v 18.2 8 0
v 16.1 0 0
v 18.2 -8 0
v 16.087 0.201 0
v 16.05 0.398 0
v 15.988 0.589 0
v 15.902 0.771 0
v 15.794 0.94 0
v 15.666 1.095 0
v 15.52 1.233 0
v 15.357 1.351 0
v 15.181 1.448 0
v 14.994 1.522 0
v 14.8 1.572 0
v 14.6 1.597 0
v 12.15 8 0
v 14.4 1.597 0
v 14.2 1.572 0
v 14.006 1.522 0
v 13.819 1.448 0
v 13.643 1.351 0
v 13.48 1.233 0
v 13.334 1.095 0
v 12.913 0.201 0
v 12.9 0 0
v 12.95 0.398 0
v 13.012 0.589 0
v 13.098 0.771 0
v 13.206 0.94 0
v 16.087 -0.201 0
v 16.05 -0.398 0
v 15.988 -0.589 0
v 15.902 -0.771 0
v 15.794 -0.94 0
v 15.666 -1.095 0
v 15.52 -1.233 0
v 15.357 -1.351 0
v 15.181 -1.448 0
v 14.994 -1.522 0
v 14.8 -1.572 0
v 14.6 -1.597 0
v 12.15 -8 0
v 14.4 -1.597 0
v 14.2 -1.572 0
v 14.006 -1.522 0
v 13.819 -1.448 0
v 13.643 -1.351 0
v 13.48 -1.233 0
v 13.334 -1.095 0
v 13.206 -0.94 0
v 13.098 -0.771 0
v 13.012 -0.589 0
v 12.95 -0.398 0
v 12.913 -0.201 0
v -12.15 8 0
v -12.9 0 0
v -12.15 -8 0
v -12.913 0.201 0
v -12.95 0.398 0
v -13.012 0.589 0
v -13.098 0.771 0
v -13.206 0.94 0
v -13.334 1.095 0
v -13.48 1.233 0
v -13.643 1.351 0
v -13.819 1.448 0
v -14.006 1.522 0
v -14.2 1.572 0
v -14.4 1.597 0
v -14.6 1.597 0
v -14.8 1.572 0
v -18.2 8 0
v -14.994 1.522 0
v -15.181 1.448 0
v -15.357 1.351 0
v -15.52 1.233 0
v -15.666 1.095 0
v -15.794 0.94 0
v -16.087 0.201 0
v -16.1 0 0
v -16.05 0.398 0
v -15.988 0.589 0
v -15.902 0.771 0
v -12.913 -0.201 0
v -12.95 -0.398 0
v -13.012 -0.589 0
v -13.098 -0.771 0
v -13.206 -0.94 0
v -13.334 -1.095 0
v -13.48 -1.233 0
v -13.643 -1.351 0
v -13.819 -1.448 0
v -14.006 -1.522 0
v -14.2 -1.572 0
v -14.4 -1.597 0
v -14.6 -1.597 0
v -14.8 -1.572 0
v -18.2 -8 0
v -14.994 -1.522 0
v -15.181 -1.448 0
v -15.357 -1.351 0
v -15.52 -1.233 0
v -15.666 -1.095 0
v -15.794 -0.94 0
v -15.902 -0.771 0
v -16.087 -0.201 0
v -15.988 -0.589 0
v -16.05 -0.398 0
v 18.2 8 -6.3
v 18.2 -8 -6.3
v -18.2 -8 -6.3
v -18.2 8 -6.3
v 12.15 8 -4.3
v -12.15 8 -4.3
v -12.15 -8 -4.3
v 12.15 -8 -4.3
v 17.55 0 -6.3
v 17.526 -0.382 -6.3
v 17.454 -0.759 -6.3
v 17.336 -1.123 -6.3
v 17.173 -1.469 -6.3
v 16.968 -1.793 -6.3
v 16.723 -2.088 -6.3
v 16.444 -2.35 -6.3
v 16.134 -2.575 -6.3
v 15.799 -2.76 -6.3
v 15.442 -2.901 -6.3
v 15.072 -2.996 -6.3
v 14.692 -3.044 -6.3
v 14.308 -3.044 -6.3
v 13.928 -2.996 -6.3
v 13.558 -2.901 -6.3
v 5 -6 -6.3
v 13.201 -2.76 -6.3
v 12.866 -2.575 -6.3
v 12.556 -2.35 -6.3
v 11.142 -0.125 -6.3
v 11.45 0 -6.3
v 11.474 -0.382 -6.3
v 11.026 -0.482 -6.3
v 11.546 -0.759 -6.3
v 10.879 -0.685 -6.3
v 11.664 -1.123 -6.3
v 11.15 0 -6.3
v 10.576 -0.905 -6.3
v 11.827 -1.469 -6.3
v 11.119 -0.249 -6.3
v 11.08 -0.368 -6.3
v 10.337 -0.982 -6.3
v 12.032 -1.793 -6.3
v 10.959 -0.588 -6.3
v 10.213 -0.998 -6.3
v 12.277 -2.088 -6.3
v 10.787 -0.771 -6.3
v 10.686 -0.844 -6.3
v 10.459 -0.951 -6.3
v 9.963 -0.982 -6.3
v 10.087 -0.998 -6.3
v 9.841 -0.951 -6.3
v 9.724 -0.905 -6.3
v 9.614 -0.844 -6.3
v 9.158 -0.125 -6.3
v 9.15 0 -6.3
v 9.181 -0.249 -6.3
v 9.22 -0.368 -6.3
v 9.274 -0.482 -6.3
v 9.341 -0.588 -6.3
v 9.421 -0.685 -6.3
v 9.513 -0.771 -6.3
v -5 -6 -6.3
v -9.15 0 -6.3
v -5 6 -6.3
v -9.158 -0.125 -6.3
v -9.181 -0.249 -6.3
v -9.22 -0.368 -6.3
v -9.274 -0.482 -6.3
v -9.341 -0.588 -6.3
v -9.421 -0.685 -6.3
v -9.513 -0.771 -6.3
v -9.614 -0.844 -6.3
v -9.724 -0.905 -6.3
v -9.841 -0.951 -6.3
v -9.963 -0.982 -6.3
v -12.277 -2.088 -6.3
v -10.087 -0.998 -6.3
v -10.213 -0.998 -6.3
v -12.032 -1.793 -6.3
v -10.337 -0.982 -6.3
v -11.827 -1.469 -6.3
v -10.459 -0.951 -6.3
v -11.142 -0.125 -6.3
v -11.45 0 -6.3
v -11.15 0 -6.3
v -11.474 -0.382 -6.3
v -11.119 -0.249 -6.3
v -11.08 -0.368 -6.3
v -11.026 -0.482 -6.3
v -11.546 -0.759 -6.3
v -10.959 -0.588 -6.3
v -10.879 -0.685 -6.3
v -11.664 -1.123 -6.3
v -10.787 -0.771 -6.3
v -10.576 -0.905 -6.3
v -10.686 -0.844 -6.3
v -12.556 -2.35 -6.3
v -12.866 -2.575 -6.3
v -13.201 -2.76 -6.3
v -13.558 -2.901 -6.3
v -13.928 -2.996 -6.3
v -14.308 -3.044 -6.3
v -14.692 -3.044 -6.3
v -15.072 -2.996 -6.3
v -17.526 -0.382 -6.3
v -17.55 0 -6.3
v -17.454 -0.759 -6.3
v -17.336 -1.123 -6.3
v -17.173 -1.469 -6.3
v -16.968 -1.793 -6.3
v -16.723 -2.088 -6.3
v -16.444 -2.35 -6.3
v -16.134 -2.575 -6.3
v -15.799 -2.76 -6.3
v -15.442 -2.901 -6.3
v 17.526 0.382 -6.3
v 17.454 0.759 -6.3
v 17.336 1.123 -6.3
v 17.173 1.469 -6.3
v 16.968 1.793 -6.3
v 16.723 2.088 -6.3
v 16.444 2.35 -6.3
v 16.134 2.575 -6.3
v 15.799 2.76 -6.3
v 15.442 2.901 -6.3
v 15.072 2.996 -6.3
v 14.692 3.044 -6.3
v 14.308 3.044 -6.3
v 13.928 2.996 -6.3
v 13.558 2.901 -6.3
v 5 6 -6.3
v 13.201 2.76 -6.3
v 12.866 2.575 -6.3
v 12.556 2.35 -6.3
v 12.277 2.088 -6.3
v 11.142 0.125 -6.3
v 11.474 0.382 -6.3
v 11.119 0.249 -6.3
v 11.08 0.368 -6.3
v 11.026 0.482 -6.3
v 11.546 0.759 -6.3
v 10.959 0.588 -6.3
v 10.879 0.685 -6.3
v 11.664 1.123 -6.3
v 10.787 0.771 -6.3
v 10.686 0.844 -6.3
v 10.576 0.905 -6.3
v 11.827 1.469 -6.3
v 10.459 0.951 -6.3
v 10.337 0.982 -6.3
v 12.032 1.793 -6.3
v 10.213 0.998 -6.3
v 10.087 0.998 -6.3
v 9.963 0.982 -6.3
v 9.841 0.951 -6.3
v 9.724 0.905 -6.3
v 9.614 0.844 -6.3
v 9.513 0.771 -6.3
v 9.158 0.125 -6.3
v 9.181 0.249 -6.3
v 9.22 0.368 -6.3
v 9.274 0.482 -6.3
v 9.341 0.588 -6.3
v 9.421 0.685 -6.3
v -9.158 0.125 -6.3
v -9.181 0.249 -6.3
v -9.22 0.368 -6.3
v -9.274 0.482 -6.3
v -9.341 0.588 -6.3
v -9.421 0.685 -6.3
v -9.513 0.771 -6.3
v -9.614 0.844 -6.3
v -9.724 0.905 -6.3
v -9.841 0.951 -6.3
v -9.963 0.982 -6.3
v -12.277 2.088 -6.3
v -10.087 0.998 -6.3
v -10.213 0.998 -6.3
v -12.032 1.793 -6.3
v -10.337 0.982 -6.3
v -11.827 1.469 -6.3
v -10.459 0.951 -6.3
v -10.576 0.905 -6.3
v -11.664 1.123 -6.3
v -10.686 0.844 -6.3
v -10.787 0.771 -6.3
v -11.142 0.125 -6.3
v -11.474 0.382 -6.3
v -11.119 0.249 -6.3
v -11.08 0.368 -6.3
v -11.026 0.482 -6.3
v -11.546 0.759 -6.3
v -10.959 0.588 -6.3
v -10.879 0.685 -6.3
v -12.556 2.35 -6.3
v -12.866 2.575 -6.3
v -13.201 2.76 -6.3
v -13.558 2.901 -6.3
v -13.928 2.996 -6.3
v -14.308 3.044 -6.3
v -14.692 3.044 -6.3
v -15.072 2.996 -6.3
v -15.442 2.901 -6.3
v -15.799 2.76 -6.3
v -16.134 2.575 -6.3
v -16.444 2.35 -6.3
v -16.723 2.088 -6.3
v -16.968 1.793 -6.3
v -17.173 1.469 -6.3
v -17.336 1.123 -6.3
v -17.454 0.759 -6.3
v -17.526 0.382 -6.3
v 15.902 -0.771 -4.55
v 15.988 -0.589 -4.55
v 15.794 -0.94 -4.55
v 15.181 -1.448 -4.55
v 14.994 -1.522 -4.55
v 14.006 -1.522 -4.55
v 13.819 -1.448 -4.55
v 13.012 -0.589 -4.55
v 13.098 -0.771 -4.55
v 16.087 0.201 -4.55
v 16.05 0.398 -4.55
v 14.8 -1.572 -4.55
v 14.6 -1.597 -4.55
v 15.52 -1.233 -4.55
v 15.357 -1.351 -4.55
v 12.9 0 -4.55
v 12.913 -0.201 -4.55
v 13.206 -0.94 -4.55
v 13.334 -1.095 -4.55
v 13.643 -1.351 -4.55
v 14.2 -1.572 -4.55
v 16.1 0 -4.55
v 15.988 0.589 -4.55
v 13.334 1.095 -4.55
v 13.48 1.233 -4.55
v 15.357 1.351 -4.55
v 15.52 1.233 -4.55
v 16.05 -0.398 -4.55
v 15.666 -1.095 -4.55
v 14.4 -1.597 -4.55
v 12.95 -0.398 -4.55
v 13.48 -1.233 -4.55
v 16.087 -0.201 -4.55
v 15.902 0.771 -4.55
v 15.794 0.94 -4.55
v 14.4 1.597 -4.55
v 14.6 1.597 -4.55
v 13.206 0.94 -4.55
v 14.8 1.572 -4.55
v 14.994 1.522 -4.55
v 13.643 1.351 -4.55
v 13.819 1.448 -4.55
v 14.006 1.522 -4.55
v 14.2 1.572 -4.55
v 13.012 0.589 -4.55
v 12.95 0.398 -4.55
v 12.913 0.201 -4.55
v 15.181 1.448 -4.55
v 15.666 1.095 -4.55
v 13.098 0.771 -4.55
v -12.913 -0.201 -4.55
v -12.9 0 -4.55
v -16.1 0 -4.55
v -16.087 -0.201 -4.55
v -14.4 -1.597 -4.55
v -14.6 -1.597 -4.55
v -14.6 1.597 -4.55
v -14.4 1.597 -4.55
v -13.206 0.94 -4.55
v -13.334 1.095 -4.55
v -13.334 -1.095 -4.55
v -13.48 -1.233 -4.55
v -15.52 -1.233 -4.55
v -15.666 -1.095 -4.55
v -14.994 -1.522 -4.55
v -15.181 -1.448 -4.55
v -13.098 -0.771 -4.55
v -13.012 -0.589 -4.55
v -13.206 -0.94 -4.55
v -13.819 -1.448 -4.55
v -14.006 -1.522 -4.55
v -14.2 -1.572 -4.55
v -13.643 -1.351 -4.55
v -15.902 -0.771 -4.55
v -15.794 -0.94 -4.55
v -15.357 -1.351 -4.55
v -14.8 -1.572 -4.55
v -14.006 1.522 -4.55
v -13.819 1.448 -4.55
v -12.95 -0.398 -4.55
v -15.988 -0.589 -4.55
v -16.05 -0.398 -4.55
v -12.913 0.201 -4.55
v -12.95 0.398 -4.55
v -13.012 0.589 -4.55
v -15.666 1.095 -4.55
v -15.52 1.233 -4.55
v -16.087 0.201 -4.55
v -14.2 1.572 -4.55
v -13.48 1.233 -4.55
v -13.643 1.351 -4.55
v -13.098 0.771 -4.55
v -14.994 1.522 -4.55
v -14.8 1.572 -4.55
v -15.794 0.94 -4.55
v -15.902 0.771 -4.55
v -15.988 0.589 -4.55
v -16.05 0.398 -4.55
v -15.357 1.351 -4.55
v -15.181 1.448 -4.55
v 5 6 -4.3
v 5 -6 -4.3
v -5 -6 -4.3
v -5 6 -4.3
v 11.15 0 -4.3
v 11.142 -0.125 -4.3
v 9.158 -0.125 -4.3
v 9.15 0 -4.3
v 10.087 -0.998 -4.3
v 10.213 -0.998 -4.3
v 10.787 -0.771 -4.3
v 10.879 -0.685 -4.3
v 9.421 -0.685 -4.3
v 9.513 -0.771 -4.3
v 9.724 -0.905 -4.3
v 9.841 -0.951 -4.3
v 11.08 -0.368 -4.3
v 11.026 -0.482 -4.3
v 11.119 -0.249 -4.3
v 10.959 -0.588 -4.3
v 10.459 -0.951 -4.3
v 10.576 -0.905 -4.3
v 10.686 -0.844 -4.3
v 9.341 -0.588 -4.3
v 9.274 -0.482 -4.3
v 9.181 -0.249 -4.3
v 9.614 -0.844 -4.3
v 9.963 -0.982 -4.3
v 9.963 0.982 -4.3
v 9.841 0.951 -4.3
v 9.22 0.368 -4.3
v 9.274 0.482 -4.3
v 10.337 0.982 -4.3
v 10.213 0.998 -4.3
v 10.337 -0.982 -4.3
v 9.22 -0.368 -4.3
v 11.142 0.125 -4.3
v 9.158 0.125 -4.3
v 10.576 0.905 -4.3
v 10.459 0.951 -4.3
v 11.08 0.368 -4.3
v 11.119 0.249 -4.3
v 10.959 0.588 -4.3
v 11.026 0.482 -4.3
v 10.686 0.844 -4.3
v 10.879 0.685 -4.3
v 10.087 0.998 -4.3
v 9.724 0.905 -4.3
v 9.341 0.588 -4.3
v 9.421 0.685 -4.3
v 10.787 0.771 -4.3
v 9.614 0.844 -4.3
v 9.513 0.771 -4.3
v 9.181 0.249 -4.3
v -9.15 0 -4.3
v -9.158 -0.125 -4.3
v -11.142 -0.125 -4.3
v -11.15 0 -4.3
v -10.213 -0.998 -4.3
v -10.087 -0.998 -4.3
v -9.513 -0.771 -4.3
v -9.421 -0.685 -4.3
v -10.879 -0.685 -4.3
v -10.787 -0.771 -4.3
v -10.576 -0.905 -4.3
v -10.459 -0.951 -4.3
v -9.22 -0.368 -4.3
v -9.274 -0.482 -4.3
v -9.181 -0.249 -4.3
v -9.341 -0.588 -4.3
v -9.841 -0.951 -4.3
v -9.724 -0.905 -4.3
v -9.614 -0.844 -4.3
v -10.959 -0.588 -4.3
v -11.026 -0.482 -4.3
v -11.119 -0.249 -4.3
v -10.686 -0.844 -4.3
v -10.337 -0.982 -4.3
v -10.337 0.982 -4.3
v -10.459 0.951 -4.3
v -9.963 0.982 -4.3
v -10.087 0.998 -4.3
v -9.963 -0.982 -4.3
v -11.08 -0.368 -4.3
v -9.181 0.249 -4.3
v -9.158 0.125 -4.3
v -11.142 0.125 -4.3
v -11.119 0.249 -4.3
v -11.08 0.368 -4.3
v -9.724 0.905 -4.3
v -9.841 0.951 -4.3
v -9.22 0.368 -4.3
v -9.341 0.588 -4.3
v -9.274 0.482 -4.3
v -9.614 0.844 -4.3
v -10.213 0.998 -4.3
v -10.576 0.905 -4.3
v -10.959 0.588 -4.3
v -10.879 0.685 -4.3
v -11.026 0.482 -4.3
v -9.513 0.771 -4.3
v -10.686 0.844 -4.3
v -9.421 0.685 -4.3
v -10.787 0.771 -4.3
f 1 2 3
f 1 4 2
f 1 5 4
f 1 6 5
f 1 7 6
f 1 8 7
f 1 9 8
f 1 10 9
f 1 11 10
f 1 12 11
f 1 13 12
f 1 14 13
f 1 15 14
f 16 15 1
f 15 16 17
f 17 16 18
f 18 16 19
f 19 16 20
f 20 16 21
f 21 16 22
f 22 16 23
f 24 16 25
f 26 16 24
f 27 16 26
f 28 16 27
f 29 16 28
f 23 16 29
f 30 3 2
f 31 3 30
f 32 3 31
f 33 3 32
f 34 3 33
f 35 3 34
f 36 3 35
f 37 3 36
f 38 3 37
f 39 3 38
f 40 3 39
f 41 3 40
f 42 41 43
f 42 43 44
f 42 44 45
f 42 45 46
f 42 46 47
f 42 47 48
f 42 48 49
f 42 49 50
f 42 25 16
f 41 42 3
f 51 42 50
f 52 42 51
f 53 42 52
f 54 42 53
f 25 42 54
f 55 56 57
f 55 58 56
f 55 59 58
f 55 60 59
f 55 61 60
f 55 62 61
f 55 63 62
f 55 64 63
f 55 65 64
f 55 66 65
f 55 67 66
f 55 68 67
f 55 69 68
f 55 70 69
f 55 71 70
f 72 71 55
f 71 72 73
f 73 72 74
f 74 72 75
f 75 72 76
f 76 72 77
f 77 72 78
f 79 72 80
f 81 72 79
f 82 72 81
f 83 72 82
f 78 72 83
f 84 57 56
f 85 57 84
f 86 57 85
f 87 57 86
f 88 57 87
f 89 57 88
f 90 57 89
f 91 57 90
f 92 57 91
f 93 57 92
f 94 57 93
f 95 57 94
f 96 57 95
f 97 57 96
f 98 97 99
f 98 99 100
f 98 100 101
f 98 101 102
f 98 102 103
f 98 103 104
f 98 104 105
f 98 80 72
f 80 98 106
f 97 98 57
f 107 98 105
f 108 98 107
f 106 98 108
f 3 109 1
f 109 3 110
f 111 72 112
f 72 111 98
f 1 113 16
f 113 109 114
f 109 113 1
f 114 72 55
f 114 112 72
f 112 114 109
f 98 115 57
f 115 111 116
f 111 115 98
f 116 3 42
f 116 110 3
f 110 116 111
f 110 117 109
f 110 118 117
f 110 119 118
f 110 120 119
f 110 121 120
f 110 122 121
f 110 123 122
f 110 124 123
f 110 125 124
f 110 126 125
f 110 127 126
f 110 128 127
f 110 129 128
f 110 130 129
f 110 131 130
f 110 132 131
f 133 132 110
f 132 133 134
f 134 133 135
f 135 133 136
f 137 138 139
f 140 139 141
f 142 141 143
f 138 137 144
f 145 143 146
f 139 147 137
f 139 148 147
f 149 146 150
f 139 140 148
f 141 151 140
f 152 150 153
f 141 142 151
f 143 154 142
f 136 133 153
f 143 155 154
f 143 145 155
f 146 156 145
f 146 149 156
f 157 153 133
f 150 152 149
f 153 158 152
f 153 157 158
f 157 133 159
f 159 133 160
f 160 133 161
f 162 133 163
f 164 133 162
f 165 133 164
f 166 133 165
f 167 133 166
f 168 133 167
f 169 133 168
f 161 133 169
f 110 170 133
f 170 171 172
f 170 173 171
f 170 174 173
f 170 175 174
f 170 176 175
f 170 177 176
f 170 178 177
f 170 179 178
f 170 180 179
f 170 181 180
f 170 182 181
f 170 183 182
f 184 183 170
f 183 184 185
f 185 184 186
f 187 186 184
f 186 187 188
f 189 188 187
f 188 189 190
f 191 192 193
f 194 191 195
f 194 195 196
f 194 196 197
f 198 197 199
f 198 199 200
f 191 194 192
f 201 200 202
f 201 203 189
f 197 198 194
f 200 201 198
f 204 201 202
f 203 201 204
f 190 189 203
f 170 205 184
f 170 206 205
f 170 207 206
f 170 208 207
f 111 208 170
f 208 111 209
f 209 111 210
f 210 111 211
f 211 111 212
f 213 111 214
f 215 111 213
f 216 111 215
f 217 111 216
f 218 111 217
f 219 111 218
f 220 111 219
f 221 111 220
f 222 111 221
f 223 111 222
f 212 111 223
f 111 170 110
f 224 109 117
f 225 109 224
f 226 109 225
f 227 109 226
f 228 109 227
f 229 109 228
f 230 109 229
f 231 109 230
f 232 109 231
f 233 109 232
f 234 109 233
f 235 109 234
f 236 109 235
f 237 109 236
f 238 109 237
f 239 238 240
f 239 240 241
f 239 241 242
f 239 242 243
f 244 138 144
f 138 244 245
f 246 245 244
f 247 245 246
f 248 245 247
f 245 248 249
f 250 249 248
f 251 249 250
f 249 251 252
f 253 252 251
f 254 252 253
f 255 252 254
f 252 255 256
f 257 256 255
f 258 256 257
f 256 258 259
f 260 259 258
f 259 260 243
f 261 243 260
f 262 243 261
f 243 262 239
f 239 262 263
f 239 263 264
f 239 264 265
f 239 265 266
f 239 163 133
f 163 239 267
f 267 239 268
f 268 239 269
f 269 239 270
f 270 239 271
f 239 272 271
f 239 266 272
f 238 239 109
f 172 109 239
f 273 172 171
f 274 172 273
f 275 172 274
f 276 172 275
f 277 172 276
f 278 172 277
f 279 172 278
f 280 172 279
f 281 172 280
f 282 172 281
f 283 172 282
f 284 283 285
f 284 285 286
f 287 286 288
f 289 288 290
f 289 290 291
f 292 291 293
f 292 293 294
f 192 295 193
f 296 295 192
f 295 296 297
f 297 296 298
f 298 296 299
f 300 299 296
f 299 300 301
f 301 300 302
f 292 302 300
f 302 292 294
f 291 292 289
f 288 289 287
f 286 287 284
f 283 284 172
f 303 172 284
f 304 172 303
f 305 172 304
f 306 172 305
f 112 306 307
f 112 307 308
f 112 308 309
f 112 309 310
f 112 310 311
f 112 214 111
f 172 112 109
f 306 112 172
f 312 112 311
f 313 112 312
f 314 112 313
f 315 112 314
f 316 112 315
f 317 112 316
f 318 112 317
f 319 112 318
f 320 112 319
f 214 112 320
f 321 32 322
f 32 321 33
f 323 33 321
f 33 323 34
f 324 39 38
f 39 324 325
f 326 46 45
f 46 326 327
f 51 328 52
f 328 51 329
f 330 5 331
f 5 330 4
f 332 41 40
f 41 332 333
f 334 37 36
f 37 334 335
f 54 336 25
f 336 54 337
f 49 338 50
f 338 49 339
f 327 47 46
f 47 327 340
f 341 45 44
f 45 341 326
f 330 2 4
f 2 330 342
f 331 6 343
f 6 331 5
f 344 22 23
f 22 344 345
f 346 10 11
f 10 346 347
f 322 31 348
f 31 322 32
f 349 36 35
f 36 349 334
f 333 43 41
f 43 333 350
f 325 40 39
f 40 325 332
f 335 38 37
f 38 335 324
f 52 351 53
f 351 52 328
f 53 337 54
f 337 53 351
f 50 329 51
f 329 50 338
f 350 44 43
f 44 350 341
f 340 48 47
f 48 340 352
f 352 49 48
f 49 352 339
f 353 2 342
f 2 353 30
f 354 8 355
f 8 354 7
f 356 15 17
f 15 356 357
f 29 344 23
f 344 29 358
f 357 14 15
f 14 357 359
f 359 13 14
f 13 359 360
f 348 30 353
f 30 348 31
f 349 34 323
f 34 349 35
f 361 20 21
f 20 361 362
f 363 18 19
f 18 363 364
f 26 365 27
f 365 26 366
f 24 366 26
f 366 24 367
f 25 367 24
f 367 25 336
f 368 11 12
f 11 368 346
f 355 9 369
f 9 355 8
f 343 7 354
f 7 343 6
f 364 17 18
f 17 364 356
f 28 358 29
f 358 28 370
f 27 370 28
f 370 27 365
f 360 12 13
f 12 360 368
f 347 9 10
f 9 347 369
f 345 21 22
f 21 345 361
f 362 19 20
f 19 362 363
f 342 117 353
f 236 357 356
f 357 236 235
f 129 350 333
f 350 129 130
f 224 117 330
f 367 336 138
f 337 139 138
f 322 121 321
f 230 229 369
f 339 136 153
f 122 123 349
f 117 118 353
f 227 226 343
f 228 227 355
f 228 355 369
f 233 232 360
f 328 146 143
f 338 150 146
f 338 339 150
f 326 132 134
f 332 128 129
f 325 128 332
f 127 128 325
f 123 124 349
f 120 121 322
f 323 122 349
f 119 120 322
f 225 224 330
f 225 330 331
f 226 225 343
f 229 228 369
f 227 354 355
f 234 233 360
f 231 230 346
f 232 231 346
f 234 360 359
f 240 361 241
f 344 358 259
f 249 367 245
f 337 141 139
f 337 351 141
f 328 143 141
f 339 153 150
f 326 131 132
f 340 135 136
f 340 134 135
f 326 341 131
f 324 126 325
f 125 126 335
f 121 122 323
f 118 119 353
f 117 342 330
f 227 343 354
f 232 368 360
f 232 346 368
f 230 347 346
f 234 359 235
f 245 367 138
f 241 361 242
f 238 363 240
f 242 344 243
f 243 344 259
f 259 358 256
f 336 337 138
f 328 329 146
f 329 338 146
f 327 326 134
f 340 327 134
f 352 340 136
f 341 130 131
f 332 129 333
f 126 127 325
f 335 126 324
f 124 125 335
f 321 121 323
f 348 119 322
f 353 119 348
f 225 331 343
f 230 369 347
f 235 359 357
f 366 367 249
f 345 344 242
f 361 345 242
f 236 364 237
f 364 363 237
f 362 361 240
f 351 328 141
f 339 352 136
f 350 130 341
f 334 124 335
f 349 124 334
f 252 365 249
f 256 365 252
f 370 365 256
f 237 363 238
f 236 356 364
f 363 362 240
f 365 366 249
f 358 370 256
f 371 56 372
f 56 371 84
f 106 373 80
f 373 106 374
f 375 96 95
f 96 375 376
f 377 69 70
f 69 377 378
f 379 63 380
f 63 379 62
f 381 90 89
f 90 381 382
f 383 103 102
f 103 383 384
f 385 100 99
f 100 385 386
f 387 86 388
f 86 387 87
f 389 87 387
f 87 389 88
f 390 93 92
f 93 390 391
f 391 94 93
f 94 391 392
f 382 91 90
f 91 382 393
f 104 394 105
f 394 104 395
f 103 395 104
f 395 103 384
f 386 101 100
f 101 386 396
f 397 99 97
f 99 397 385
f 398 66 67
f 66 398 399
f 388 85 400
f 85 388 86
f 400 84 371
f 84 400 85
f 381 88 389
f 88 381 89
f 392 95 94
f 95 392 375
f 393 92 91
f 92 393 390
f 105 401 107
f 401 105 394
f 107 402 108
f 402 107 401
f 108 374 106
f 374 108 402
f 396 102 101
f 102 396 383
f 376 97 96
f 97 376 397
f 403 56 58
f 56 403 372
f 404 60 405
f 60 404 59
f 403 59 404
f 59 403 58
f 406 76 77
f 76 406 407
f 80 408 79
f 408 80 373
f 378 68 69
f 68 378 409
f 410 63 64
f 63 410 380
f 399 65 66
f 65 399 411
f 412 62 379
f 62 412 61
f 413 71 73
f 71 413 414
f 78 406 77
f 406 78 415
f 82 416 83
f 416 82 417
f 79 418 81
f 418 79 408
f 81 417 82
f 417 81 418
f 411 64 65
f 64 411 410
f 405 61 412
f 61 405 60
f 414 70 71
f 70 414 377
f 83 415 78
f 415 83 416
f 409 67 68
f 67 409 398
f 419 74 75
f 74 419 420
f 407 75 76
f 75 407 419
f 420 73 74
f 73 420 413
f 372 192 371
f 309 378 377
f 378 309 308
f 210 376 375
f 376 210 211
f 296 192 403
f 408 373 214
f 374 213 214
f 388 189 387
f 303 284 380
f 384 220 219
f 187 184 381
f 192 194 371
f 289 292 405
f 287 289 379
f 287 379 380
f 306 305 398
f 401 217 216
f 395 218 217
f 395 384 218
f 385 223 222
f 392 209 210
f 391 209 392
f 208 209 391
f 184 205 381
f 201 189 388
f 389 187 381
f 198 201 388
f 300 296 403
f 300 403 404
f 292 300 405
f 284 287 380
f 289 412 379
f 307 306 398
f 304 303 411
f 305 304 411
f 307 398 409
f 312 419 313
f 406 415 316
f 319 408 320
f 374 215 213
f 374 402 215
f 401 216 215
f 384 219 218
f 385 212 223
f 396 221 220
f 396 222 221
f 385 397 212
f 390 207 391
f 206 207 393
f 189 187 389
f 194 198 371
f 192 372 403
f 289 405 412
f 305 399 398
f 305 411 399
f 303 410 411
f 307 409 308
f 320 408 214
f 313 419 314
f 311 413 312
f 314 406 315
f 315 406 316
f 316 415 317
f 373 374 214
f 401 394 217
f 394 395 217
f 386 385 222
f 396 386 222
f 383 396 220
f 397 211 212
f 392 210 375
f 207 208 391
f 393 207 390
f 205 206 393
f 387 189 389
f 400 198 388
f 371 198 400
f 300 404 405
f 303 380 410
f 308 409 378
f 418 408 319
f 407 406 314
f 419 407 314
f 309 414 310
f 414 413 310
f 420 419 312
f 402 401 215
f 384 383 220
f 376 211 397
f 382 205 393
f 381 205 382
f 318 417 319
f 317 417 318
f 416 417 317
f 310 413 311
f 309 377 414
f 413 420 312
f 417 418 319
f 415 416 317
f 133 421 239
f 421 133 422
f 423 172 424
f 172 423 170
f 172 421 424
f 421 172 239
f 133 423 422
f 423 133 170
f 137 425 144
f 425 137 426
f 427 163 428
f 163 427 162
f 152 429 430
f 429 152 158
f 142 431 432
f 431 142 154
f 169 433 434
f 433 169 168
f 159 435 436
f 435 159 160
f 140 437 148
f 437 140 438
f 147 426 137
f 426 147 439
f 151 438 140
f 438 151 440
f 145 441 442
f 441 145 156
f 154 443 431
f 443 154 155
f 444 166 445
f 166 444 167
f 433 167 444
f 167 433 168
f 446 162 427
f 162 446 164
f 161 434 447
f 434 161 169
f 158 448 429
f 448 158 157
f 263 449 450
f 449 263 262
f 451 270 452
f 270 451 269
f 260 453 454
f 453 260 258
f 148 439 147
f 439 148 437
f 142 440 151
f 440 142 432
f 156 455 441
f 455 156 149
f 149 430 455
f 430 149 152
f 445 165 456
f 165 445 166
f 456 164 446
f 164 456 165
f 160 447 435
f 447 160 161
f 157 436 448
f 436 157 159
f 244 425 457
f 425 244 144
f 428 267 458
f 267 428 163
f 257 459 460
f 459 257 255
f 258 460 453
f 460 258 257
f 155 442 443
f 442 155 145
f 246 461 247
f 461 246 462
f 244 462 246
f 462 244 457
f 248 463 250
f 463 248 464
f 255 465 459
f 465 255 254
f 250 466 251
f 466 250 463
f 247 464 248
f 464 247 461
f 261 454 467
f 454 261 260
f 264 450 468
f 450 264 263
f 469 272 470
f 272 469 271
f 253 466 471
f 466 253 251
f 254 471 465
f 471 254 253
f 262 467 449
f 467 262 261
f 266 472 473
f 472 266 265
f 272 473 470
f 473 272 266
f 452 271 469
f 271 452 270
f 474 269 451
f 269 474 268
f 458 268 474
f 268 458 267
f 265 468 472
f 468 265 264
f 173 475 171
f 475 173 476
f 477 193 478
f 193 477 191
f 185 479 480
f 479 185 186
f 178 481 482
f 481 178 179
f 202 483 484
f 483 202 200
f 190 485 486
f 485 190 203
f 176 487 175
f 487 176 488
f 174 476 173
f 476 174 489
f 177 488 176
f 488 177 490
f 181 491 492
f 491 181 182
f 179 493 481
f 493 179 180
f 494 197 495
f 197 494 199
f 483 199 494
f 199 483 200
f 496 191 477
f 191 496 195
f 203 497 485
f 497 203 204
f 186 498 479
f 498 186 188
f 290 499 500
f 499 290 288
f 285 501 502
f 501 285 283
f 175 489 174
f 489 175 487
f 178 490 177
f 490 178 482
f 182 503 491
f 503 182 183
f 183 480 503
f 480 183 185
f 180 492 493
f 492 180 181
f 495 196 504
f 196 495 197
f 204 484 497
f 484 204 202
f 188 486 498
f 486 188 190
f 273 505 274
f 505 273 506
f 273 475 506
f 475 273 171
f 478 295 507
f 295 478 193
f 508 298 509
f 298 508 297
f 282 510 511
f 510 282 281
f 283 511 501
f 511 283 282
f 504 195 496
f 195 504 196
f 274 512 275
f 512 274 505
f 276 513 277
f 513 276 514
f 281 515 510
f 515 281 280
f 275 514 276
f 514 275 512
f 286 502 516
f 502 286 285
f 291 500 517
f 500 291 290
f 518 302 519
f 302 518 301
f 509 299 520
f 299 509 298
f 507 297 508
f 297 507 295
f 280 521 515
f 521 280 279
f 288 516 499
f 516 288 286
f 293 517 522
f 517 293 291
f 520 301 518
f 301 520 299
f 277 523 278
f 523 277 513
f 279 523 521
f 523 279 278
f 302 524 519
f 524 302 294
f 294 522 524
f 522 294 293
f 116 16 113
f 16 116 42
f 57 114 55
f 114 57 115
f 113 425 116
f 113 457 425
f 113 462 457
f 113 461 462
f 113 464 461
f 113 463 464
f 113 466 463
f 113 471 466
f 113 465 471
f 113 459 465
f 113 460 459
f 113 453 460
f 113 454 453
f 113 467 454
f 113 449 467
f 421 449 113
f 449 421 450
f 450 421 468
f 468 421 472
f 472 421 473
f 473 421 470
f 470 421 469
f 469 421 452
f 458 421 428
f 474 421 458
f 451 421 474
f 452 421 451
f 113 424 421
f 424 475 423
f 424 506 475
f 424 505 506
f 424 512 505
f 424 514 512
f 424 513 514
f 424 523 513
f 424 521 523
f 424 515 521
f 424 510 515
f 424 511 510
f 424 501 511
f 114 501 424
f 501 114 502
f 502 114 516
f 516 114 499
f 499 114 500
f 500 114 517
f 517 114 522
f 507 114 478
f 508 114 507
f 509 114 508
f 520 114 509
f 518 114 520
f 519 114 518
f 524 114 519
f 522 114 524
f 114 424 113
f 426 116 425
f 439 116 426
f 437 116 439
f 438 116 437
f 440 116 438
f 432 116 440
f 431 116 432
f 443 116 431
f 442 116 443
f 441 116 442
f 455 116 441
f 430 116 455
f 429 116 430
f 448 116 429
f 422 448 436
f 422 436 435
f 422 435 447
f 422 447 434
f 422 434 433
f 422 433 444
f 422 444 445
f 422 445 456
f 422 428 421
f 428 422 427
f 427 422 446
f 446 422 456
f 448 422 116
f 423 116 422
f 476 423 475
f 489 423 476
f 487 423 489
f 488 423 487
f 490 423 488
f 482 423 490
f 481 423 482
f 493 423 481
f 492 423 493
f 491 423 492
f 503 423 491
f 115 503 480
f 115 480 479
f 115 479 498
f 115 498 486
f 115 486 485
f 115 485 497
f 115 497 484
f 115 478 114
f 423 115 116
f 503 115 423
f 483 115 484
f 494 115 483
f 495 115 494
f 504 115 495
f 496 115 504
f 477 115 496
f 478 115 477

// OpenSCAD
//----------------------------------------------------
// ------------ Parameters ------------ 
//----------------------------------------------------
chip_x = 10;
chip_y = 12;
chip_h = 2.5;

holder_hole_d = 29/2;
holder_hole_r = 1.6;

holder_y = chip_y+4;
holder_x = 2*(holder_hole_d+2*holder_hole_r)+1;
holder_h = 6.3;

sensor_board_hole_d=20.3/2;
sensor_board_hole_r=1;
sensor_board_x=2*(holder_hole_d-holder_hole_r)-1.5;
sensor_board_y=sensor_board_x;

//----------------------------------------------------
// ------------ Modelling ------------ 
//----------------------------------------------------

rotate([180,0,0]) {
    difference(){
        linear_extrude(holder_h, center=false)
            square([holder_x, holder_y], center=true);
        // Hole holder 1
        translate([holder_hole_d,0.0])
            cylinder(h=holder_h,r=holder_hole_r,center=false,$fn=50);
        translate([holder_hole_d,0,holder_h-1.75])
            cylinder(h=1.75,r1=3.2/2,r2=6.1/2,$fn=50);
        // Hole holder 2
        translate([-holder_hole_d,0.0])
            cylinder(h=holder_h,r=holder_hole_r,center=false,$fn=50);
        translate([-holder_hole_d,0,holder_h-1.75])
            cylinder(h=1.75,r1=3.2/2,r2=6.1/2,$fn=50);
        
        // Chip
        linear_extrude(holder_h, center=false)
            square([chip_x, chip_y], center=true);
        // Hole sensor 1
        translate([sensor_board_hole_d,0.0])
            cylinder(h=holder_h,r=sensor_board_hole_r,center=false,$fn=50);
        // Hole sensor 2
        translate([-sensor_board_hole_d,0.0])
            cylinder(h=holder_h,r=sensor_board_hole_r,center=false,$fn=50);
        linear_extrude(4.3, center=false)
            square([sensor_board_x, sensor_board_y], center=true);
    }
}
